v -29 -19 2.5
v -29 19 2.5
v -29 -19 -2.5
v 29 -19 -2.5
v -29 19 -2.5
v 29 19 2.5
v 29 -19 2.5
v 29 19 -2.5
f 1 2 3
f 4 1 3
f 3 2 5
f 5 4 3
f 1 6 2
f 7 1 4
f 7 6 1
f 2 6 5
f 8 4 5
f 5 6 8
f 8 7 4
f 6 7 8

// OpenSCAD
polyhedron(points=[[-29.0, -19.0, -2.5], [-29.0, -19.0, 2.5], [-29.0, 19.0, -2.5], [-29.0, 19.0, 2.5], [29.0, -19.0, -2.5], [29.0, -19.0, 2.5], [29.0, 19.0, -2.5], [29.0, 19.0, 2.5]], faces=[[1, 3, 0], [4, 1, 0], [0, 3, 2], [2, 4, 0], [1, 7, 3], [5, 1, 4], [5, 7, 1], [3, 7, 2], [6, 4, 2], [2, 7, 6], [6, 5, 4], [7, 5, 6]], convexity=30);
